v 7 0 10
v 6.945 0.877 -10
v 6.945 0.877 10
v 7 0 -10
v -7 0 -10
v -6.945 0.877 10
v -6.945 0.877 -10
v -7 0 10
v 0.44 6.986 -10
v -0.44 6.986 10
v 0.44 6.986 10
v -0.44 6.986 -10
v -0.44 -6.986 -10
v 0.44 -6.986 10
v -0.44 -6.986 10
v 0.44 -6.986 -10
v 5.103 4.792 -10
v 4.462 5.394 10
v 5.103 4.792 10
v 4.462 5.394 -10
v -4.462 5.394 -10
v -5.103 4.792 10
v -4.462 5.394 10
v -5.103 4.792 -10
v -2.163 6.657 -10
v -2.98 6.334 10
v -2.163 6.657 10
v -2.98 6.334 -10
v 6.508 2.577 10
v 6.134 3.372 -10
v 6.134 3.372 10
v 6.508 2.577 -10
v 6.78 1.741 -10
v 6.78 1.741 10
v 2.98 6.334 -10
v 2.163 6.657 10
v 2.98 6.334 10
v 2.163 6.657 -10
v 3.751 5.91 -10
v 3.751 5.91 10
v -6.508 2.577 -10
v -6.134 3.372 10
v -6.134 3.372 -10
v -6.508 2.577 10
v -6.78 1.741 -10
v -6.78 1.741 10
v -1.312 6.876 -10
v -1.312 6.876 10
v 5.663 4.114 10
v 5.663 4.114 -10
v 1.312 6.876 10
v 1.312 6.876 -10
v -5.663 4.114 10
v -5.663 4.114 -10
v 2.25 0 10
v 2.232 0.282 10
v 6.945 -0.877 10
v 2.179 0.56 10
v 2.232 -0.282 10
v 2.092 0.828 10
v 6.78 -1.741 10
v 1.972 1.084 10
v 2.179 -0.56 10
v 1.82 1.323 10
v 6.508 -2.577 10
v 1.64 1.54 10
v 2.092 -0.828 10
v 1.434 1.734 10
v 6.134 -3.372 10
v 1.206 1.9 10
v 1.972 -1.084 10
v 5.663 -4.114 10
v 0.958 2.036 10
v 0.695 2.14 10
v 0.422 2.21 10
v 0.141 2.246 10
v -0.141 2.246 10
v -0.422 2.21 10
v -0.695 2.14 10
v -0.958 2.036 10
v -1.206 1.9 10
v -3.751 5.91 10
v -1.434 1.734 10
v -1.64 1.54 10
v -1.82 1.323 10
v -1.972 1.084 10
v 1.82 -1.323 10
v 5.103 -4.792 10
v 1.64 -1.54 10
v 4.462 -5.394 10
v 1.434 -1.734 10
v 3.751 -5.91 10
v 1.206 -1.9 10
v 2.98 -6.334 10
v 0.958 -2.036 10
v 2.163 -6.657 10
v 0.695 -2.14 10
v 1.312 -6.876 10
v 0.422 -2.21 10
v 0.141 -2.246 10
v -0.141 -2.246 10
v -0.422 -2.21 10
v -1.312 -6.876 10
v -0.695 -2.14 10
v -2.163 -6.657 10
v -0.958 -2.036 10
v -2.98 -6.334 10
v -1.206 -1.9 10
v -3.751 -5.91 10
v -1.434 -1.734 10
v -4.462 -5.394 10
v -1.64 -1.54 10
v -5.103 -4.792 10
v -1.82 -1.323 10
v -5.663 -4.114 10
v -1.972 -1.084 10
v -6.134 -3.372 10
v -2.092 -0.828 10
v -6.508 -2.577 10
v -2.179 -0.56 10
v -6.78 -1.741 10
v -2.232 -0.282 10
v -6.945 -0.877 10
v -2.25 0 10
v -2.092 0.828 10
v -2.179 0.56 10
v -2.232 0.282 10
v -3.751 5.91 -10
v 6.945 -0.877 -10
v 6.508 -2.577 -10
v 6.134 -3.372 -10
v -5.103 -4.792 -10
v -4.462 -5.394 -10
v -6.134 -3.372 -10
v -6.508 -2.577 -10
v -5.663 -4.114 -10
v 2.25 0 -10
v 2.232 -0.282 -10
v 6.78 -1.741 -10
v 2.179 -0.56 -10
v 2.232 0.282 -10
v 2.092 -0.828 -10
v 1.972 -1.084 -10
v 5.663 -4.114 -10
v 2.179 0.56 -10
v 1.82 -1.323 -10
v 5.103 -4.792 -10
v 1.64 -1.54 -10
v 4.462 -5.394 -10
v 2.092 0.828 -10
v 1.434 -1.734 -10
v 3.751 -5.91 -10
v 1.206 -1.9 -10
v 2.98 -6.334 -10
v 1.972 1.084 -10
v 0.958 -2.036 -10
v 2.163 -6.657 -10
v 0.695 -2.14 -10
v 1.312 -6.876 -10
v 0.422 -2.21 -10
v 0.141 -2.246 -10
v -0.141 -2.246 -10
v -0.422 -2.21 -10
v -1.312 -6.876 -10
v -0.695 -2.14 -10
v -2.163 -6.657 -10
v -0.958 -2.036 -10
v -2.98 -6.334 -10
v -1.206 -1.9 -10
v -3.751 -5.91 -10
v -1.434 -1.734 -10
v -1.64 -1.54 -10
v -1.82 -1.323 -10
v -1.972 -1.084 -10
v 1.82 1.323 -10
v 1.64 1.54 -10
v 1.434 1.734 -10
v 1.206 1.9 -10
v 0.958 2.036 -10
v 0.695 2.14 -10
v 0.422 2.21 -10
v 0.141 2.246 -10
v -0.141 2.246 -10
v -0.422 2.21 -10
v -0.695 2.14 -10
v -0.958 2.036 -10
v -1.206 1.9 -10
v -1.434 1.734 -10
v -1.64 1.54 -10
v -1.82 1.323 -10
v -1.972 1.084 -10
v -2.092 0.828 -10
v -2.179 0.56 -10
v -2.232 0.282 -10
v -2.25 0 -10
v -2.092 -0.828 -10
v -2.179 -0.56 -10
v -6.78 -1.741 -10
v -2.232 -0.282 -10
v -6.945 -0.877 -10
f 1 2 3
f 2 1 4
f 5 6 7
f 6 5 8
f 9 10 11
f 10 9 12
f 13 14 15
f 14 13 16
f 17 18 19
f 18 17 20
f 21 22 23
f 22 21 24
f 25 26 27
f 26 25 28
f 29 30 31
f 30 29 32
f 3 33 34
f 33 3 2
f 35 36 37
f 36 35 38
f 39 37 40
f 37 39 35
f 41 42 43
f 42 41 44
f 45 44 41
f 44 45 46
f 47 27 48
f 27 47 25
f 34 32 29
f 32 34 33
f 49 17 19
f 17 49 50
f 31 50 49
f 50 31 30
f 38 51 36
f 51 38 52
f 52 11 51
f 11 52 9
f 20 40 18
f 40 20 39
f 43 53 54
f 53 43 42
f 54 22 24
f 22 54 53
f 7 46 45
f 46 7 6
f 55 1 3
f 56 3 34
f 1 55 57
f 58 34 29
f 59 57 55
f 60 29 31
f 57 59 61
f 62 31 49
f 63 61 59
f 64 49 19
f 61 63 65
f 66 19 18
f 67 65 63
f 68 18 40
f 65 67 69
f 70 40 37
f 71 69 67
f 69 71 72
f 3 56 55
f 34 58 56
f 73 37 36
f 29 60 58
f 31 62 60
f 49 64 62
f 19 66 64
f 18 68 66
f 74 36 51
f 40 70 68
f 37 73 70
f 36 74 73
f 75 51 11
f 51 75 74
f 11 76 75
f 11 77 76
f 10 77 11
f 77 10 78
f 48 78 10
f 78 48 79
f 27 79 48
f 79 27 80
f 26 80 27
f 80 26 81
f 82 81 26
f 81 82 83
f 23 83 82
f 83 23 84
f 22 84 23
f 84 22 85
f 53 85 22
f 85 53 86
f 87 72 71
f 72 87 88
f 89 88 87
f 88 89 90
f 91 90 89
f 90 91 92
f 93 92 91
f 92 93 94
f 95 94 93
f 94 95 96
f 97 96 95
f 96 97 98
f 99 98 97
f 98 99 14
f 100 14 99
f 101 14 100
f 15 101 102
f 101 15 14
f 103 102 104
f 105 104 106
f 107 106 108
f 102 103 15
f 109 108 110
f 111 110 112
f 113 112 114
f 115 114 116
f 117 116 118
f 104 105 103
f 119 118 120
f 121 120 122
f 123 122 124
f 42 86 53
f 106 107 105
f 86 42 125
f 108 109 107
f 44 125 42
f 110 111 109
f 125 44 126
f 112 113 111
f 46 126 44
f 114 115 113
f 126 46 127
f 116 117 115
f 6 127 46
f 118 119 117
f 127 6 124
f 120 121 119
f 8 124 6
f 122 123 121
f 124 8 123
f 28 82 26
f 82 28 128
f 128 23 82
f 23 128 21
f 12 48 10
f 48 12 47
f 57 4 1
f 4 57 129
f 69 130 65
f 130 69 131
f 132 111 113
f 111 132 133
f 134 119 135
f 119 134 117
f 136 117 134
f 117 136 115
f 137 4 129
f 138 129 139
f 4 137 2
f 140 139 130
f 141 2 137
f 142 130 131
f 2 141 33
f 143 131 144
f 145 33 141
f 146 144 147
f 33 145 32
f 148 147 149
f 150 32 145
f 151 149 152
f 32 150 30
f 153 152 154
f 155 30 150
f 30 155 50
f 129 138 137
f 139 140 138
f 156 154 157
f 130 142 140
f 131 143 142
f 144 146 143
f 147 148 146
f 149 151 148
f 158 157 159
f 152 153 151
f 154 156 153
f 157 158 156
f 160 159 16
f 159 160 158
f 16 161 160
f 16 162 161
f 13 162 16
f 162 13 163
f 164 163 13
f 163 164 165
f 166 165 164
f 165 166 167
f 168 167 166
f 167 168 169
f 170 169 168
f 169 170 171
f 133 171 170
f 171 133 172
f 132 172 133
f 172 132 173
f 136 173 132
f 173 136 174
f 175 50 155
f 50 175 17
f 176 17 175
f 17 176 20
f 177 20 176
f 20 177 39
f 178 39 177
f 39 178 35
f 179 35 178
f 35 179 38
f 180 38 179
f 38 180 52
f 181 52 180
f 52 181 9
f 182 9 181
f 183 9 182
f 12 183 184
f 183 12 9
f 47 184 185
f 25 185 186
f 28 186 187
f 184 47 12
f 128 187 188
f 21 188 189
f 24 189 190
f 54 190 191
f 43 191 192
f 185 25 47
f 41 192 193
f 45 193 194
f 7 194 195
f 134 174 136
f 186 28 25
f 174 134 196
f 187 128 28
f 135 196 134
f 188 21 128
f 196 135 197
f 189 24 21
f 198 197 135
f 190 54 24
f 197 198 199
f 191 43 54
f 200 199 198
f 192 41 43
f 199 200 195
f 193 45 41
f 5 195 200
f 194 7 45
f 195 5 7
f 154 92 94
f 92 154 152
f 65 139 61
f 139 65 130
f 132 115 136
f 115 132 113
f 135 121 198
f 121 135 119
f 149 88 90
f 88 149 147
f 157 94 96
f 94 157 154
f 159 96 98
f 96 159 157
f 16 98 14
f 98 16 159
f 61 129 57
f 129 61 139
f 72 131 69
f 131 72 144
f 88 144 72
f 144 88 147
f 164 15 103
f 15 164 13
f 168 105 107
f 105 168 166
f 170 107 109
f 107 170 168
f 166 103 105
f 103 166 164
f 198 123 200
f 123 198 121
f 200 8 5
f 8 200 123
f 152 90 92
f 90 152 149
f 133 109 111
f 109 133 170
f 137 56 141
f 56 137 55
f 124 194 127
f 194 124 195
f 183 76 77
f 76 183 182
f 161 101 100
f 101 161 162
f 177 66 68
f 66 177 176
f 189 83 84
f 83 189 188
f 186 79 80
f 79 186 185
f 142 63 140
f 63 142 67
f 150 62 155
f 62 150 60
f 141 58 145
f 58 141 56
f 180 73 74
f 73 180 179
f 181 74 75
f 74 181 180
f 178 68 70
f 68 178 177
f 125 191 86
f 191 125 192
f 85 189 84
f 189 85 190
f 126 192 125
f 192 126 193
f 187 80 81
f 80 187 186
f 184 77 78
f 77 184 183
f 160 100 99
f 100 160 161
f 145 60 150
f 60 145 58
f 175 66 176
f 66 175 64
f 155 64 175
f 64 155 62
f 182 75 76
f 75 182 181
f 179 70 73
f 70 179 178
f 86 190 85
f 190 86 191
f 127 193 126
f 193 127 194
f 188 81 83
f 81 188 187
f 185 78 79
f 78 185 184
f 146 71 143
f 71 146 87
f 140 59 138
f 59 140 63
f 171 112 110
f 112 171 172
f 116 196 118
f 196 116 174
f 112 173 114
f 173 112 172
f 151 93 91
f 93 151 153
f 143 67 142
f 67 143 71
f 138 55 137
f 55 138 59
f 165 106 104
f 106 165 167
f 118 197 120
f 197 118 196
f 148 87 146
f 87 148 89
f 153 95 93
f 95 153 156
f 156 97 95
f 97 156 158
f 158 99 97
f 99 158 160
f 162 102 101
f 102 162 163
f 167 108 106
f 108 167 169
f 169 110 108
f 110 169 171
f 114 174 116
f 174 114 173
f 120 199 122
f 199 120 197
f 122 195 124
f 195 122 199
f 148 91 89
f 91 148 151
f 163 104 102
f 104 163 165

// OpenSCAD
$fn = 50;


difference() {
	union() {
		translate(v = [0, 0, -10.0000000000]) {
			cylinder(h = 20, r = 7.0000000000);
		}
	}
	union() {
		translate(v = [0, 0, -100.0000000000]) {
			cylinder(h = 200, r = 2.2500000000);
		}
	}
}
